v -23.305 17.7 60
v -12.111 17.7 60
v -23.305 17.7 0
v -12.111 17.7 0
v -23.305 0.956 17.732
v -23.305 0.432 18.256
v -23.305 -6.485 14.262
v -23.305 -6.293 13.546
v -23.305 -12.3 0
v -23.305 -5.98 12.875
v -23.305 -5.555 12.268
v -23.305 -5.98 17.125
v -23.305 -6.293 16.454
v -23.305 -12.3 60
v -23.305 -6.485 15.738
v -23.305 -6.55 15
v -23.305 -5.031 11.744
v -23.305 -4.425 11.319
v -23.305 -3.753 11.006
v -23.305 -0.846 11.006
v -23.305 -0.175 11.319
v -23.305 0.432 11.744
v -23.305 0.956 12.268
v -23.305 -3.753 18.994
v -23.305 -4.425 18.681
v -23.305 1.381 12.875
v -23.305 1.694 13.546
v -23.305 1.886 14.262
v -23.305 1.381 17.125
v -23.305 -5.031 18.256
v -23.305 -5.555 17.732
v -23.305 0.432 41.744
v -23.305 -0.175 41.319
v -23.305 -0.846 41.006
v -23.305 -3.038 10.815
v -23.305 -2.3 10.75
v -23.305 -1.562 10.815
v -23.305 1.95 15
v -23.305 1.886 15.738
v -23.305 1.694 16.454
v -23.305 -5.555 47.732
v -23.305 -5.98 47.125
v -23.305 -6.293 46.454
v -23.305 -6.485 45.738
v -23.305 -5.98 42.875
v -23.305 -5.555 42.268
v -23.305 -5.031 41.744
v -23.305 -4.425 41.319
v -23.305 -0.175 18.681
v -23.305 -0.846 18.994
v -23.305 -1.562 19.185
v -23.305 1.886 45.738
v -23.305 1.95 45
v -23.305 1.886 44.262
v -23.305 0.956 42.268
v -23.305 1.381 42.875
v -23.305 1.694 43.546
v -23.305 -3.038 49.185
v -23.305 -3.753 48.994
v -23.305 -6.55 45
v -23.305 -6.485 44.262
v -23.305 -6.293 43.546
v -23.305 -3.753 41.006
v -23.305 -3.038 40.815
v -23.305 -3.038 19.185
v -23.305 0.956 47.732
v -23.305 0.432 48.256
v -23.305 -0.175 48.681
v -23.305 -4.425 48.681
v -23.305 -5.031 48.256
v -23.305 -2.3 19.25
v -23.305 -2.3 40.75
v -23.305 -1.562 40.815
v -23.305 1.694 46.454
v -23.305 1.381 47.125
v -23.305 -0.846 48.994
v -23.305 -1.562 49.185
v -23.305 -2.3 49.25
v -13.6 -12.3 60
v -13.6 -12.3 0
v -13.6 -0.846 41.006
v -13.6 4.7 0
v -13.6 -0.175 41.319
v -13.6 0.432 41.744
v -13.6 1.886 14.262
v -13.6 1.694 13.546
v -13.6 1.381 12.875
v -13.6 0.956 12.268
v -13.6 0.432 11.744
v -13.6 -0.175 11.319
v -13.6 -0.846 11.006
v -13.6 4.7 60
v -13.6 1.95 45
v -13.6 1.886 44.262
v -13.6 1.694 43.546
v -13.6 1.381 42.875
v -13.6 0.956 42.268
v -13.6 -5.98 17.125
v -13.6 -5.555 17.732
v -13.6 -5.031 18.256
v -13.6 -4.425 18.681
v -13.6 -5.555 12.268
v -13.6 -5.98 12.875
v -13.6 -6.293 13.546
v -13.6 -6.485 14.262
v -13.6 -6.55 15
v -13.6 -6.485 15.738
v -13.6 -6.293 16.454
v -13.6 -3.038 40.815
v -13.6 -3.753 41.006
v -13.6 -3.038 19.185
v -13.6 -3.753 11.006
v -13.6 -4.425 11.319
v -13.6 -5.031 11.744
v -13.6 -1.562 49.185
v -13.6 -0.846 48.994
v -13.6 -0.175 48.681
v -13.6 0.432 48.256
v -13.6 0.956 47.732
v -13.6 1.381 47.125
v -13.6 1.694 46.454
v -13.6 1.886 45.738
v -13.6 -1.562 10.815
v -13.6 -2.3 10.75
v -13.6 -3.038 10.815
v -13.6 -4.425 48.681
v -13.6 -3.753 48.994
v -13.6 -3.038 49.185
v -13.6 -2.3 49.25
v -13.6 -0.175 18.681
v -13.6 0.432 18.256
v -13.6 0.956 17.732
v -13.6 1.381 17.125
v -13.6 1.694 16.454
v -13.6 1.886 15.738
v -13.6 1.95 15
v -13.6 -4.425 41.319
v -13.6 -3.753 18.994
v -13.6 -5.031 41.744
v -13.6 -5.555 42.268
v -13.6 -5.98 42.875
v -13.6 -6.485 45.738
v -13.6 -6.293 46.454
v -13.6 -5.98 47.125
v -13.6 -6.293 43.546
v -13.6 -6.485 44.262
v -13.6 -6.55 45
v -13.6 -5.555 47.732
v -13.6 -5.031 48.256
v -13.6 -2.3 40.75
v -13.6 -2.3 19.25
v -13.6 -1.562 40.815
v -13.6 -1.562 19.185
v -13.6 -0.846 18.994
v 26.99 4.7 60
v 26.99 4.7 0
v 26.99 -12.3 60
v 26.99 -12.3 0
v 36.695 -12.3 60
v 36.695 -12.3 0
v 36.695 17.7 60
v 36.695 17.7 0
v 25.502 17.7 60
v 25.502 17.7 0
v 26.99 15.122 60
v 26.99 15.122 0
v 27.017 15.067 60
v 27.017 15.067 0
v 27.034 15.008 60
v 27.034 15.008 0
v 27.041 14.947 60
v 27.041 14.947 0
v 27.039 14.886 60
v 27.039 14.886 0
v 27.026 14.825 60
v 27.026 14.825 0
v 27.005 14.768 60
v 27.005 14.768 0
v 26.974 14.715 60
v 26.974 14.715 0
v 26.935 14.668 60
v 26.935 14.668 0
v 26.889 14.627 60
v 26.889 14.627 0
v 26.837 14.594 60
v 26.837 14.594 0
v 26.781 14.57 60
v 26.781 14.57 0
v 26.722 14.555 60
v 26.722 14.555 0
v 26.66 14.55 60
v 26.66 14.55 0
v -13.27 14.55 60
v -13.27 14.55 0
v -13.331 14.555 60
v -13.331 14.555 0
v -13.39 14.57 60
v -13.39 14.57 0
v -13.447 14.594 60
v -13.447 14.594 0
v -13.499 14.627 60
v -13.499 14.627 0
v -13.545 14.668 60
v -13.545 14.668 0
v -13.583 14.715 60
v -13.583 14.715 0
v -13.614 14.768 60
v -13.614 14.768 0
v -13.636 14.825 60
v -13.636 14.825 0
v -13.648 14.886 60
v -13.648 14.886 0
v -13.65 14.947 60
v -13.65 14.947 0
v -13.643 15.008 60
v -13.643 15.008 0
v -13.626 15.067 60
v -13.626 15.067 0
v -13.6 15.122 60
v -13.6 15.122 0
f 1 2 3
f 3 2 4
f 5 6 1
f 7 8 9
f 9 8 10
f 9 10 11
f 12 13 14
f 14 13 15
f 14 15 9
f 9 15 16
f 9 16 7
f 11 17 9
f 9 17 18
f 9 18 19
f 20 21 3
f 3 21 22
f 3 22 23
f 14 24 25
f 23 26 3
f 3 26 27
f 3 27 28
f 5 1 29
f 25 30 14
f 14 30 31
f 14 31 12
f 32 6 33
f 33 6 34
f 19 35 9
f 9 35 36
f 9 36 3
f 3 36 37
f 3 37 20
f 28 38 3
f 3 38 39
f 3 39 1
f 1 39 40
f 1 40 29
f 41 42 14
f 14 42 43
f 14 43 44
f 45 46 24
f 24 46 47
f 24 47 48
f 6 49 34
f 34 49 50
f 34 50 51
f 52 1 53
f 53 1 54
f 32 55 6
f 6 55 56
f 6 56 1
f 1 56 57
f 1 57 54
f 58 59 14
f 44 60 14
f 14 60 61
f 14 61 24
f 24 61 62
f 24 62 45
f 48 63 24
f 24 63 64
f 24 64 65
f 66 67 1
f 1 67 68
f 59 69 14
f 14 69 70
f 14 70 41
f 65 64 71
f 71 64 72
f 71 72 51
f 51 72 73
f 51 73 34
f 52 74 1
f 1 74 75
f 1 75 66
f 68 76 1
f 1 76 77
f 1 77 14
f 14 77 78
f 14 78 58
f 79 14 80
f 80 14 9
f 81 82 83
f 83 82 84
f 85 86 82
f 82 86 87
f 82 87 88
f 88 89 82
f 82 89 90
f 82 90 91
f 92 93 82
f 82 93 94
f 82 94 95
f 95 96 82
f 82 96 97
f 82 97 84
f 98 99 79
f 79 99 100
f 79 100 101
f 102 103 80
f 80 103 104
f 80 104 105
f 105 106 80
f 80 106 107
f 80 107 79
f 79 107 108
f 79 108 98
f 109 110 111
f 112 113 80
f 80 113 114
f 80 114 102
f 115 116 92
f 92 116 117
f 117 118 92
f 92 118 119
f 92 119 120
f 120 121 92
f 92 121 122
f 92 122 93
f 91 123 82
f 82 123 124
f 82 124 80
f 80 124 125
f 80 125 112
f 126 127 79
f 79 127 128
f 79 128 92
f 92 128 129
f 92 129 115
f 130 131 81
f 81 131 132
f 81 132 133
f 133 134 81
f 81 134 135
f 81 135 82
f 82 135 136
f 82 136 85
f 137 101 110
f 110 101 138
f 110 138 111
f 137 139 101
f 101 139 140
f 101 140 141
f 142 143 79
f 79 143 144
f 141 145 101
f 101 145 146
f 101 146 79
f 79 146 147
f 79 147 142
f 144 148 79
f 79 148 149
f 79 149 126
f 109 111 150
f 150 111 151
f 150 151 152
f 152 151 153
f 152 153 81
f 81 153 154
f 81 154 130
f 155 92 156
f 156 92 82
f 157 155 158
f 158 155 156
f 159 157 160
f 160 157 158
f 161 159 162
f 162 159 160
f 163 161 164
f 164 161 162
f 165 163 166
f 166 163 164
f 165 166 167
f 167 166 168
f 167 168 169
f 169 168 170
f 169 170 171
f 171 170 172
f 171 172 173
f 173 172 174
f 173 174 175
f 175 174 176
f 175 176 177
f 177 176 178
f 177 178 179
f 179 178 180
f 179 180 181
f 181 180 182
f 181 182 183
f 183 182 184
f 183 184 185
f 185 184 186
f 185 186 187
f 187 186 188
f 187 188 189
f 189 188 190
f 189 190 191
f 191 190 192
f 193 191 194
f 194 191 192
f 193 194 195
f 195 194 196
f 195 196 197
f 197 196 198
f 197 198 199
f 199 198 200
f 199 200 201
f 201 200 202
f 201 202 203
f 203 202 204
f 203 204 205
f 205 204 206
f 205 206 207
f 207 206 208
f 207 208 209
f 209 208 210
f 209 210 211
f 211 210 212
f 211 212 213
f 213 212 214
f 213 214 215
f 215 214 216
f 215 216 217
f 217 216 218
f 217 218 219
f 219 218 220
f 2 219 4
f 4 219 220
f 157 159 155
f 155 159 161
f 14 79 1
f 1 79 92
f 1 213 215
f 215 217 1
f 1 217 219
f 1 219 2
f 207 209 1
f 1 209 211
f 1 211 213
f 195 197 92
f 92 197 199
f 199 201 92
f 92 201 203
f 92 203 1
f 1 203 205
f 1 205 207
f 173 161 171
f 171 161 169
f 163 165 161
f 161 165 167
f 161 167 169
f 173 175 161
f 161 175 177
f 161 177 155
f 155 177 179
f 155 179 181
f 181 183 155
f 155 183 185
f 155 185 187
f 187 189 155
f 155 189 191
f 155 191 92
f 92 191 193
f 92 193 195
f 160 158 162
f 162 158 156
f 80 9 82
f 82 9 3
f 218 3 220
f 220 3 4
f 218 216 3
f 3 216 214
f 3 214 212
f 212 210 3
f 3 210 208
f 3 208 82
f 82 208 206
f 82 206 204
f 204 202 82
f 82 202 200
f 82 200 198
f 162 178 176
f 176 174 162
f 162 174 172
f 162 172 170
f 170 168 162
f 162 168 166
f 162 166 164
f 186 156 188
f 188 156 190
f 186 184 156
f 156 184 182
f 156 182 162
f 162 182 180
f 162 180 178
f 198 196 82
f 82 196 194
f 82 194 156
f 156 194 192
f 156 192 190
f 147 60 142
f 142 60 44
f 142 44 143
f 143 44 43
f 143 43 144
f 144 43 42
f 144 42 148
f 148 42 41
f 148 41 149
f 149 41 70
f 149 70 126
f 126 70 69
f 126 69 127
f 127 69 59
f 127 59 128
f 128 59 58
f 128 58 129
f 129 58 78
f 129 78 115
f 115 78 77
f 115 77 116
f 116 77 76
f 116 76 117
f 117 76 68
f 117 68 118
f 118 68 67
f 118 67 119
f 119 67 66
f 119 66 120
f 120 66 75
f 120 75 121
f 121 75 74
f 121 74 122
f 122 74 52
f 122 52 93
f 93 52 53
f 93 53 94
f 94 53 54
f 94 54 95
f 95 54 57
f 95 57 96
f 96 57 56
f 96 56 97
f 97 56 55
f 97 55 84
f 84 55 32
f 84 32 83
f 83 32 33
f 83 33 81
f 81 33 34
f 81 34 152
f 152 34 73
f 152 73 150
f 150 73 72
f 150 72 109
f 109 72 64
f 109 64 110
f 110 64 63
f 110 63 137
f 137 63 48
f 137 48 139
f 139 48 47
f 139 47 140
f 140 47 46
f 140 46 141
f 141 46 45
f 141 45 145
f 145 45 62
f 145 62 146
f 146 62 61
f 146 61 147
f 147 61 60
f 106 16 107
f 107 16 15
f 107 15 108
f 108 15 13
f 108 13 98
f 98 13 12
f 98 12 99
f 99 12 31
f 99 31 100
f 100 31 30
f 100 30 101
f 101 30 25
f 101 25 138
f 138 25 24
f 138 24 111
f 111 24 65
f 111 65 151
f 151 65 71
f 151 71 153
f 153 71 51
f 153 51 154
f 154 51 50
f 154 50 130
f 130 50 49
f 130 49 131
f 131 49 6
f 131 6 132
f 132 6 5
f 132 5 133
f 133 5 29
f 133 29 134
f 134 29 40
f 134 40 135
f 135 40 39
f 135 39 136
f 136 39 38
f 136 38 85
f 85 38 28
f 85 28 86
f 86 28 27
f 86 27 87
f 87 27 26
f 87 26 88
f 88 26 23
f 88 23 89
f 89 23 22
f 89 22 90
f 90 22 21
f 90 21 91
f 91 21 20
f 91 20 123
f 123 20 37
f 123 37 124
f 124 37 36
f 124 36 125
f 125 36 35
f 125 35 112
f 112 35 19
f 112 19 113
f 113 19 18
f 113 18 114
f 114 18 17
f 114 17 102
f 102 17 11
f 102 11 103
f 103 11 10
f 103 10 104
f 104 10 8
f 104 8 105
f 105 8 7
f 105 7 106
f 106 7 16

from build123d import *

# Parameters (mm, degrees)
BOSS_EXTRUDE1_DEPTH = 60
SKETCH2_R           = 4.25
CUT_EXTRUDE1_DEPTH  = 9.704955679


with BuildPart() as part:
    # Sketch1 → Boss-Extrude1 (new body)
    with BuildSketch(Plane.XY):
        with BuildLine():
            Line((-23.304685018, 17.700444455), (-23.304685018, -12.299555545))
            Line((-23.304685018, -12.299555545), (-13.599729339, -12.299555545))
            Line((-13.599729339, -12.299555545), (-13.599729339, 4.700444455))
            Line((-13.599729339, 4.700444455), (26.990359303, 4.700444455))
            Line((26.990359303, 4.700444455), (26.990359303, -12.299555545))
            Line((26.990359303, -12.299555545), (36.695314982, -12.299555545))
            Line((36.695314982, -12.299555545), (36.695314982, 17.700444455))
            Line((36.695314982, 17.700444455), (25.501661634, 17.700444455))
            Line((25.501661634, 17.700444455), (26.990359303, 15.121944455))
            ThreePointArc((26.990359303, 15.121944455), (26.990359303, 14.740944455), (26.660403624, 14.550444455))
            Line((26.660403624, 14.550444455), (-13.26977366, 14.550444455))
            ThreePointArc((-13.26977366, 14.550444455), (-13.599729339, 14.740944455), (-13.599729339, 15.121944455))
            Line((-13.599729339, 15.121944455), (-12.11103167, 17.700444455))
            Line((-12.11103167, 17.700444455), (-23.304685018, 17.700444455))
        make_face()
    extrude(amount=BOSS_EXTRUDE1_DEPTH)

    # Sketch2 → Cut-Extrude1 (cut)
    with BuildSketch(Plane.ZY.offset(23.304685018)):
        with Locations(Location((15, -2.299555545, 0), (0, 0, 270))):
            Circle(SKETCH2_R)
        with Locations(Location((45, -2.299555545, 0), (0, 0, 270))):
            Circle(SKETCH2_R)
    extrude(amount=-CUT_EXTRUDE1_DEPTH, mode=Mode.SUBTRACT)


solid = part.part
